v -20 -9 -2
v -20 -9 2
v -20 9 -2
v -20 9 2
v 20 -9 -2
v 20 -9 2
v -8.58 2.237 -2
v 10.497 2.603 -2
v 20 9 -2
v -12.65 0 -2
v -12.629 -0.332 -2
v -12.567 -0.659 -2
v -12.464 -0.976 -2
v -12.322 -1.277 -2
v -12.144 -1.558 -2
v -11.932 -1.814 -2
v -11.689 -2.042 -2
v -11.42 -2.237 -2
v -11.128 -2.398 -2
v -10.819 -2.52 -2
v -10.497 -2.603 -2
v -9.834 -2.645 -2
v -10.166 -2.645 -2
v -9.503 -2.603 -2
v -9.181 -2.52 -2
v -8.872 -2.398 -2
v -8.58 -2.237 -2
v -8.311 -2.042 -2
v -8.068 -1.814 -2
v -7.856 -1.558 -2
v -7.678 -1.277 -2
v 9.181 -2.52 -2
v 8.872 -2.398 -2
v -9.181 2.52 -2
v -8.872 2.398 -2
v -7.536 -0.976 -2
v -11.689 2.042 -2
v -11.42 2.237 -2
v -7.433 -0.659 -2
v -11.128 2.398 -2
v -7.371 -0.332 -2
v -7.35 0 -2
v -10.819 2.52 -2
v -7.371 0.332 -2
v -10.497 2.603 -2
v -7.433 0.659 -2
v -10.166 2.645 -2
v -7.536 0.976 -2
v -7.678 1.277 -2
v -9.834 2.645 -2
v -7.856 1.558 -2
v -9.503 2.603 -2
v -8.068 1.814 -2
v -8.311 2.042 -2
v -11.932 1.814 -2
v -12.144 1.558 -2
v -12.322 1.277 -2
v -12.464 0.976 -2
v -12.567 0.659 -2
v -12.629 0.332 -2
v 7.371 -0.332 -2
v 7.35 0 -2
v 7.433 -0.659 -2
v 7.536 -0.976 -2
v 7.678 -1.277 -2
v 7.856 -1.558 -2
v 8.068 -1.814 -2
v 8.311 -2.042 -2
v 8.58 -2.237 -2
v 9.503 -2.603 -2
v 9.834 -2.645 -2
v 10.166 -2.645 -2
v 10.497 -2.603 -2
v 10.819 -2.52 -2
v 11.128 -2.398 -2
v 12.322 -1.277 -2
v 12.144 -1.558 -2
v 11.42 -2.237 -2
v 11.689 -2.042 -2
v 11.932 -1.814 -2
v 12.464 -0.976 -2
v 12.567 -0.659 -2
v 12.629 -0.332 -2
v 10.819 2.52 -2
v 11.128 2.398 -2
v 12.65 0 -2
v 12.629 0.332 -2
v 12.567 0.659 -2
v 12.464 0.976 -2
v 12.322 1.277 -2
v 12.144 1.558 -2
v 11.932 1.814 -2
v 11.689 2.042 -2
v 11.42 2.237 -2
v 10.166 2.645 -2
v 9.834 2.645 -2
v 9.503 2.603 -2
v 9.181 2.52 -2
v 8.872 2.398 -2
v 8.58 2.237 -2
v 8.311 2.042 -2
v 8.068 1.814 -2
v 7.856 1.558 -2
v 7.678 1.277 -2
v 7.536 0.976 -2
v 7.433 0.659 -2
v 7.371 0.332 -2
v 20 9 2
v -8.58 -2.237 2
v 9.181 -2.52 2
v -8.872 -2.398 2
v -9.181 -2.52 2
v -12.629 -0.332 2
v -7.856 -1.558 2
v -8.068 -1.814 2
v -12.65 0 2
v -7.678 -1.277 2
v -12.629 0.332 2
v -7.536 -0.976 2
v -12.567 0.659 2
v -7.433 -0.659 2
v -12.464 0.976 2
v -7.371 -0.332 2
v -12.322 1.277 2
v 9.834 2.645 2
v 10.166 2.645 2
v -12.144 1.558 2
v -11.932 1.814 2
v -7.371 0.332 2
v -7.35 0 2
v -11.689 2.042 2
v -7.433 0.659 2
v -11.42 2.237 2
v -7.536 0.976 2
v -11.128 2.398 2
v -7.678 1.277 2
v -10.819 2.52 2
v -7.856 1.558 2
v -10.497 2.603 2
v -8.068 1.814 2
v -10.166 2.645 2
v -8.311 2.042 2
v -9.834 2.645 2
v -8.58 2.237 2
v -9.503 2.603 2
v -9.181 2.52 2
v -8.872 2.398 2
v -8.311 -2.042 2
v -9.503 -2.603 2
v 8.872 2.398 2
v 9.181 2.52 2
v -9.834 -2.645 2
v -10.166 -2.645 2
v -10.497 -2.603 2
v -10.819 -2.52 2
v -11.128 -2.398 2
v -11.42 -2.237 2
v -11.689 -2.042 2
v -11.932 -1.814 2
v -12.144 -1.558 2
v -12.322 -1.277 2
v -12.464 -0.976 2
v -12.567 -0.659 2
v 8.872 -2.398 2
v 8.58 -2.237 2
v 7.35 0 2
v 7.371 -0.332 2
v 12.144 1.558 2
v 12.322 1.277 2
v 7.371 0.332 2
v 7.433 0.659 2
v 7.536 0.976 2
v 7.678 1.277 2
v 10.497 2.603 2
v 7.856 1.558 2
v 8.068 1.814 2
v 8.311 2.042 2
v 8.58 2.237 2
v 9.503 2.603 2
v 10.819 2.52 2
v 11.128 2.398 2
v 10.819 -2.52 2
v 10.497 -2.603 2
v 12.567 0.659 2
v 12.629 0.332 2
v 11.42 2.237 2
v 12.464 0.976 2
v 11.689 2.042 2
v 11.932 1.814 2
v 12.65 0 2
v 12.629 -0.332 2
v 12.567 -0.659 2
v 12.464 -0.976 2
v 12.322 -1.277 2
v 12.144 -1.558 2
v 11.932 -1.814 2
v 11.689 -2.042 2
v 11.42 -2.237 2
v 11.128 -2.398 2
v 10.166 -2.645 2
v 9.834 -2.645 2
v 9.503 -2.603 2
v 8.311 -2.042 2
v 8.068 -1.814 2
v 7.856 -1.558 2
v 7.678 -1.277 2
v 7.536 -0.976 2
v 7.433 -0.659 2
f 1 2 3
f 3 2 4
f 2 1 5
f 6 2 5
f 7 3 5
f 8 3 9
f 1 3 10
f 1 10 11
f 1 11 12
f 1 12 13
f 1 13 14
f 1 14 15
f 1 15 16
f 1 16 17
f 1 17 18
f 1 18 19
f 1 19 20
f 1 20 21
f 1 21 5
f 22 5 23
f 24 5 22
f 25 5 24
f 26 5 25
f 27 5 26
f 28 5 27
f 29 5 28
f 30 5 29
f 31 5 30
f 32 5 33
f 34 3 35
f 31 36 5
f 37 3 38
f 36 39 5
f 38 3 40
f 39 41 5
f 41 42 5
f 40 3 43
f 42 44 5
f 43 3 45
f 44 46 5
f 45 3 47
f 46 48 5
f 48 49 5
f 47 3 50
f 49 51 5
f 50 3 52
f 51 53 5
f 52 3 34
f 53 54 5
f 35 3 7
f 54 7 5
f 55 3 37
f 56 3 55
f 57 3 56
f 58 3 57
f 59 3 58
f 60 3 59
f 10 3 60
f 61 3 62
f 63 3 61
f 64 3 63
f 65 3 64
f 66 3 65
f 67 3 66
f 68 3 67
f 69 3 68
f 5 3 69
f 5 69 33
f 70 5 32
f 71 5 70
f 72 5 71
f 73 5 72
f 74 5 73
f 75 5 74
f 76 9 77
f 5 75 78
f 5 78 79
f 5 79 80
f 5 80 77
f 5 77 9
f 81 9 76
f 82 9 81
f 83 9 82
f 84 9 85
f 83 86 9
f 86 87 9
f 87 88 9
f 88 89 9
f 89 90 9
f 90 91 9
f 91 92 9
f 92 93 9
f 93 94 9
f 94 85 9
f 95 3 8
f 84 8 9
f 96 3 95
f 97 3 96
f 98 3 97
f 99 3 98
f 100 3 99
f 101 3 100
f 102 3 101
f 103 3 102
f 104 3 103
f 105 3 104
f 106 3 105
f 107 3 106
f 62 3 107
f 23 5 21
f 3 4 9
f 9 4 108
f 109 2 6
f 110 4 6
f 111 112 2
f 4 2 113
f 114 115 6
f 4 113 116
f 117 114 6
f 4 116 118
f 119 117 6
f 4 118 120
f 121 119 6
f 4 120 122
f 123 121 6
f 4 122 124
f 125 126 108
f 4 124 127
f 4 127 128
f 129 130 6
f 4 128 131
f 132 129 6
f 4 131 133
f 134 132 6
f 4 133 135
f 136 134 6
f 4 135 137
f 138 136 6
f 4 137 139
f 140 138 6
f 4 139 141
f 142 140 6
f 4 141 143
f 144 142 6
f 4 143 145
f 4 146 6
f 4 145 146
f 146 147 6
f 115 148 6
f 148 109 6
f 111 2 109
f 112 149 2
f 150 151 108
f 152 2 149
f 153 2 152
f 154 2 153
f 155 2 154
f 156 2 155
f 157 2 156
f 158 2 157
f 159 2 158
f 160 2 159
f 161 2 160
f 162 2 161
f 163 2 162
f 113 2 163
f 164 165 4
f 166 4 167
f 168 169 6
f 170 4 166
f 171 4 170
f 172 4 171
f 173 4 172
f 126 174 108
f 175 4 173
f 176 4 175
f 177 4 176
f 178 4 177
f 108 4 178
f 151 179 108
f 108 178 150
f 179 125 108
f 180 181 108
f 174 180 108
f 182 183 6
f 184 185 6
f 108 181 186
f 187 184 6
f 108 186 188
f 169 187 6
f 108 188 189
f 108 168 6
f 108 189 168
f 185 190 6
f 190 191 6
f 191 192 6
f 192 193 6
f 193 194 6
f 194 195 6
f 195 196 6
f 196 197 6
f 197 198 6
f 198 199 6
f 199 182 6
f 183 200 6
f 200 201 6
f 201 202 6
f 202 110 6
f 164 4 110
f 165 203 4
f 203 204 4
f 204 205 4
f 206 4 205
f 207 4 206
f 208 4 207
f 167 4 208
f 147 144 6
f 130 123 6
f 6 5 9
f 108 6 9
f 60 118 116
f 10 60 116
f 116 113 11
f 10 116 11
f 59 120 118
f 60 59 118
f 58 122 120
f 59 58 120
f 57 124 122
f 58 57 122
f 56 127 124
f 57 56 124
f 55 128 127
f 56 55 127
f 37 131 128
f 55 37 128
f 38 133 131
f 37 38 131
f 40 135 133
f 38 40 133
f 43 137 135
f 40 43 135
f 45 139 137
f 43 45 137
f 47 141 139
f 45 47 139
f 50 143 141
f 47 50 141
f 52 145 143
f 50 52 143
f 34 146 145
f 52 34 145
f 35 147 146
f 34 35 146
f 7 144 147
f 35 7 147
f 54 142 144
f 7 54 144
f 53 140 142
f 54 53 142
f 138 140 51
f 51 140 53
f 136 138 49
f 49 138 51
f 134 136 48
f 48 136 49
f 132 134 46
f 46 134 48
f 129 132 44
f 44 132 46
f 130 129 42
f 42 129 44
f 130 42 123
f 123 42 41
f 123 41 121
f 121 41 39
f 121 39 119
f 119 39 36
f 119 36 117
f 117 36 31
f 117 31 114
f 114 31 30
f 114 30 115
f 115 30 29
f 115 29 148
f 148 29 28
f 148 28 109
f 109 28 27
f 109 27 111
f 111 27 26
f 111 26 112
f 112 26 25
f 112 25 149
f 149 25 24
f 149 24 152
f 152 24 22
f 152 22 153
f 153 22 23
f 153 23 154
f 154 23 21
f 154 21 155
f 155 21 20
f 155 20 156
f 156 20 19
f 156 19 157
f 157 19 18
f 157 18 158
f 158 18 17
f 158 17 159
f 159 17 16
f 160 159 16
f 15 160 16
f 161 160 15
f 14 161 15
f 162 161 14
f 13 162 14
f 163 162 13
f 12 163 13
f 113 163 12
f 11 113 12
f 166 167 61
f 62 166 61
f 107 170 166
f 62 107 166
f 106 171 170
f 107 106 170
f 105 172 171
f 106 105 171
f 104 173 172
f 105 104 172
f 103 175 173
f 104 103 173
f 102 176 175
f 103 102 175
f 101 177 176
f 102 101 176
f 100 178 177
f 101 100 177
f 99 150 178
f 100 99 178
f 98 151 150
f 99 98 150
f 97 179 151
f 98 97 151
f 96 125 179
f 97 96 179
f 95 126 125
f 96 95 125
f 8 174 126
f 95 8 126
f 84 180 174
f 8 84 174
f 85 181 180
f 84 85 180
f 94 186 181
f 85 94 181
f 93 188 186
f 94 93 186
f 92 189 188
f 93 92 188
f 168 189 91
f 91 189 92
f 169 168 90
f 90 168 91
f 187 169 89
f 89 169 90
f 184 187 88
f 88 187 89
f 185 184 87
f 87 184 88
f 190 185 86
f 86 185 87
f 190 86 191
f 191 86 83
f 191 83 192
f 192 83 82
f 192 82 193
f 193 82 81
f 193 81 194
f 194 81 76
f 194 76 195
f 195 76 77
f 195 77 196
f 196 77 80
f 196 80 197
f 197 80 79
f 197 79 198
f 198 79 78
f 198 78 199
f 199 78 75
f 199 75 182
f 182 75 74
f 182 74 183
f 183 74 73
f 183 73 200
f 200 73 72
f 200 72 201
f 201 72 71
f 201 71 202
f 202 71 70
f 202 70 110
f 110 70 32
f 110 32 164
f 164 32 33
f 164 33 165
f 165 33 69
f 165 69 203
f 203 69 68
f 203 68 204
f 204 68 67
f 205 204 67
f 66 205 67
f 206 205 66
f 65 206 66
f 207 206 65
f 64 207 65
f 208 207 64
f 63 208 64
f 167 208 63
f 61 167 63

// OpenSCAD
w = 40;
d = 18;
h = 4;
r = 5.3 / 2;
spacing = 20;
difference() {
	cube([w, d, h], center=true);
	for (dx = [-(spacing/2), (spacing/2)]) {
		translate([dx, 0, 0])
		cylinder(r=r, h=2*h, center=true, $fn=50);
	}
}
